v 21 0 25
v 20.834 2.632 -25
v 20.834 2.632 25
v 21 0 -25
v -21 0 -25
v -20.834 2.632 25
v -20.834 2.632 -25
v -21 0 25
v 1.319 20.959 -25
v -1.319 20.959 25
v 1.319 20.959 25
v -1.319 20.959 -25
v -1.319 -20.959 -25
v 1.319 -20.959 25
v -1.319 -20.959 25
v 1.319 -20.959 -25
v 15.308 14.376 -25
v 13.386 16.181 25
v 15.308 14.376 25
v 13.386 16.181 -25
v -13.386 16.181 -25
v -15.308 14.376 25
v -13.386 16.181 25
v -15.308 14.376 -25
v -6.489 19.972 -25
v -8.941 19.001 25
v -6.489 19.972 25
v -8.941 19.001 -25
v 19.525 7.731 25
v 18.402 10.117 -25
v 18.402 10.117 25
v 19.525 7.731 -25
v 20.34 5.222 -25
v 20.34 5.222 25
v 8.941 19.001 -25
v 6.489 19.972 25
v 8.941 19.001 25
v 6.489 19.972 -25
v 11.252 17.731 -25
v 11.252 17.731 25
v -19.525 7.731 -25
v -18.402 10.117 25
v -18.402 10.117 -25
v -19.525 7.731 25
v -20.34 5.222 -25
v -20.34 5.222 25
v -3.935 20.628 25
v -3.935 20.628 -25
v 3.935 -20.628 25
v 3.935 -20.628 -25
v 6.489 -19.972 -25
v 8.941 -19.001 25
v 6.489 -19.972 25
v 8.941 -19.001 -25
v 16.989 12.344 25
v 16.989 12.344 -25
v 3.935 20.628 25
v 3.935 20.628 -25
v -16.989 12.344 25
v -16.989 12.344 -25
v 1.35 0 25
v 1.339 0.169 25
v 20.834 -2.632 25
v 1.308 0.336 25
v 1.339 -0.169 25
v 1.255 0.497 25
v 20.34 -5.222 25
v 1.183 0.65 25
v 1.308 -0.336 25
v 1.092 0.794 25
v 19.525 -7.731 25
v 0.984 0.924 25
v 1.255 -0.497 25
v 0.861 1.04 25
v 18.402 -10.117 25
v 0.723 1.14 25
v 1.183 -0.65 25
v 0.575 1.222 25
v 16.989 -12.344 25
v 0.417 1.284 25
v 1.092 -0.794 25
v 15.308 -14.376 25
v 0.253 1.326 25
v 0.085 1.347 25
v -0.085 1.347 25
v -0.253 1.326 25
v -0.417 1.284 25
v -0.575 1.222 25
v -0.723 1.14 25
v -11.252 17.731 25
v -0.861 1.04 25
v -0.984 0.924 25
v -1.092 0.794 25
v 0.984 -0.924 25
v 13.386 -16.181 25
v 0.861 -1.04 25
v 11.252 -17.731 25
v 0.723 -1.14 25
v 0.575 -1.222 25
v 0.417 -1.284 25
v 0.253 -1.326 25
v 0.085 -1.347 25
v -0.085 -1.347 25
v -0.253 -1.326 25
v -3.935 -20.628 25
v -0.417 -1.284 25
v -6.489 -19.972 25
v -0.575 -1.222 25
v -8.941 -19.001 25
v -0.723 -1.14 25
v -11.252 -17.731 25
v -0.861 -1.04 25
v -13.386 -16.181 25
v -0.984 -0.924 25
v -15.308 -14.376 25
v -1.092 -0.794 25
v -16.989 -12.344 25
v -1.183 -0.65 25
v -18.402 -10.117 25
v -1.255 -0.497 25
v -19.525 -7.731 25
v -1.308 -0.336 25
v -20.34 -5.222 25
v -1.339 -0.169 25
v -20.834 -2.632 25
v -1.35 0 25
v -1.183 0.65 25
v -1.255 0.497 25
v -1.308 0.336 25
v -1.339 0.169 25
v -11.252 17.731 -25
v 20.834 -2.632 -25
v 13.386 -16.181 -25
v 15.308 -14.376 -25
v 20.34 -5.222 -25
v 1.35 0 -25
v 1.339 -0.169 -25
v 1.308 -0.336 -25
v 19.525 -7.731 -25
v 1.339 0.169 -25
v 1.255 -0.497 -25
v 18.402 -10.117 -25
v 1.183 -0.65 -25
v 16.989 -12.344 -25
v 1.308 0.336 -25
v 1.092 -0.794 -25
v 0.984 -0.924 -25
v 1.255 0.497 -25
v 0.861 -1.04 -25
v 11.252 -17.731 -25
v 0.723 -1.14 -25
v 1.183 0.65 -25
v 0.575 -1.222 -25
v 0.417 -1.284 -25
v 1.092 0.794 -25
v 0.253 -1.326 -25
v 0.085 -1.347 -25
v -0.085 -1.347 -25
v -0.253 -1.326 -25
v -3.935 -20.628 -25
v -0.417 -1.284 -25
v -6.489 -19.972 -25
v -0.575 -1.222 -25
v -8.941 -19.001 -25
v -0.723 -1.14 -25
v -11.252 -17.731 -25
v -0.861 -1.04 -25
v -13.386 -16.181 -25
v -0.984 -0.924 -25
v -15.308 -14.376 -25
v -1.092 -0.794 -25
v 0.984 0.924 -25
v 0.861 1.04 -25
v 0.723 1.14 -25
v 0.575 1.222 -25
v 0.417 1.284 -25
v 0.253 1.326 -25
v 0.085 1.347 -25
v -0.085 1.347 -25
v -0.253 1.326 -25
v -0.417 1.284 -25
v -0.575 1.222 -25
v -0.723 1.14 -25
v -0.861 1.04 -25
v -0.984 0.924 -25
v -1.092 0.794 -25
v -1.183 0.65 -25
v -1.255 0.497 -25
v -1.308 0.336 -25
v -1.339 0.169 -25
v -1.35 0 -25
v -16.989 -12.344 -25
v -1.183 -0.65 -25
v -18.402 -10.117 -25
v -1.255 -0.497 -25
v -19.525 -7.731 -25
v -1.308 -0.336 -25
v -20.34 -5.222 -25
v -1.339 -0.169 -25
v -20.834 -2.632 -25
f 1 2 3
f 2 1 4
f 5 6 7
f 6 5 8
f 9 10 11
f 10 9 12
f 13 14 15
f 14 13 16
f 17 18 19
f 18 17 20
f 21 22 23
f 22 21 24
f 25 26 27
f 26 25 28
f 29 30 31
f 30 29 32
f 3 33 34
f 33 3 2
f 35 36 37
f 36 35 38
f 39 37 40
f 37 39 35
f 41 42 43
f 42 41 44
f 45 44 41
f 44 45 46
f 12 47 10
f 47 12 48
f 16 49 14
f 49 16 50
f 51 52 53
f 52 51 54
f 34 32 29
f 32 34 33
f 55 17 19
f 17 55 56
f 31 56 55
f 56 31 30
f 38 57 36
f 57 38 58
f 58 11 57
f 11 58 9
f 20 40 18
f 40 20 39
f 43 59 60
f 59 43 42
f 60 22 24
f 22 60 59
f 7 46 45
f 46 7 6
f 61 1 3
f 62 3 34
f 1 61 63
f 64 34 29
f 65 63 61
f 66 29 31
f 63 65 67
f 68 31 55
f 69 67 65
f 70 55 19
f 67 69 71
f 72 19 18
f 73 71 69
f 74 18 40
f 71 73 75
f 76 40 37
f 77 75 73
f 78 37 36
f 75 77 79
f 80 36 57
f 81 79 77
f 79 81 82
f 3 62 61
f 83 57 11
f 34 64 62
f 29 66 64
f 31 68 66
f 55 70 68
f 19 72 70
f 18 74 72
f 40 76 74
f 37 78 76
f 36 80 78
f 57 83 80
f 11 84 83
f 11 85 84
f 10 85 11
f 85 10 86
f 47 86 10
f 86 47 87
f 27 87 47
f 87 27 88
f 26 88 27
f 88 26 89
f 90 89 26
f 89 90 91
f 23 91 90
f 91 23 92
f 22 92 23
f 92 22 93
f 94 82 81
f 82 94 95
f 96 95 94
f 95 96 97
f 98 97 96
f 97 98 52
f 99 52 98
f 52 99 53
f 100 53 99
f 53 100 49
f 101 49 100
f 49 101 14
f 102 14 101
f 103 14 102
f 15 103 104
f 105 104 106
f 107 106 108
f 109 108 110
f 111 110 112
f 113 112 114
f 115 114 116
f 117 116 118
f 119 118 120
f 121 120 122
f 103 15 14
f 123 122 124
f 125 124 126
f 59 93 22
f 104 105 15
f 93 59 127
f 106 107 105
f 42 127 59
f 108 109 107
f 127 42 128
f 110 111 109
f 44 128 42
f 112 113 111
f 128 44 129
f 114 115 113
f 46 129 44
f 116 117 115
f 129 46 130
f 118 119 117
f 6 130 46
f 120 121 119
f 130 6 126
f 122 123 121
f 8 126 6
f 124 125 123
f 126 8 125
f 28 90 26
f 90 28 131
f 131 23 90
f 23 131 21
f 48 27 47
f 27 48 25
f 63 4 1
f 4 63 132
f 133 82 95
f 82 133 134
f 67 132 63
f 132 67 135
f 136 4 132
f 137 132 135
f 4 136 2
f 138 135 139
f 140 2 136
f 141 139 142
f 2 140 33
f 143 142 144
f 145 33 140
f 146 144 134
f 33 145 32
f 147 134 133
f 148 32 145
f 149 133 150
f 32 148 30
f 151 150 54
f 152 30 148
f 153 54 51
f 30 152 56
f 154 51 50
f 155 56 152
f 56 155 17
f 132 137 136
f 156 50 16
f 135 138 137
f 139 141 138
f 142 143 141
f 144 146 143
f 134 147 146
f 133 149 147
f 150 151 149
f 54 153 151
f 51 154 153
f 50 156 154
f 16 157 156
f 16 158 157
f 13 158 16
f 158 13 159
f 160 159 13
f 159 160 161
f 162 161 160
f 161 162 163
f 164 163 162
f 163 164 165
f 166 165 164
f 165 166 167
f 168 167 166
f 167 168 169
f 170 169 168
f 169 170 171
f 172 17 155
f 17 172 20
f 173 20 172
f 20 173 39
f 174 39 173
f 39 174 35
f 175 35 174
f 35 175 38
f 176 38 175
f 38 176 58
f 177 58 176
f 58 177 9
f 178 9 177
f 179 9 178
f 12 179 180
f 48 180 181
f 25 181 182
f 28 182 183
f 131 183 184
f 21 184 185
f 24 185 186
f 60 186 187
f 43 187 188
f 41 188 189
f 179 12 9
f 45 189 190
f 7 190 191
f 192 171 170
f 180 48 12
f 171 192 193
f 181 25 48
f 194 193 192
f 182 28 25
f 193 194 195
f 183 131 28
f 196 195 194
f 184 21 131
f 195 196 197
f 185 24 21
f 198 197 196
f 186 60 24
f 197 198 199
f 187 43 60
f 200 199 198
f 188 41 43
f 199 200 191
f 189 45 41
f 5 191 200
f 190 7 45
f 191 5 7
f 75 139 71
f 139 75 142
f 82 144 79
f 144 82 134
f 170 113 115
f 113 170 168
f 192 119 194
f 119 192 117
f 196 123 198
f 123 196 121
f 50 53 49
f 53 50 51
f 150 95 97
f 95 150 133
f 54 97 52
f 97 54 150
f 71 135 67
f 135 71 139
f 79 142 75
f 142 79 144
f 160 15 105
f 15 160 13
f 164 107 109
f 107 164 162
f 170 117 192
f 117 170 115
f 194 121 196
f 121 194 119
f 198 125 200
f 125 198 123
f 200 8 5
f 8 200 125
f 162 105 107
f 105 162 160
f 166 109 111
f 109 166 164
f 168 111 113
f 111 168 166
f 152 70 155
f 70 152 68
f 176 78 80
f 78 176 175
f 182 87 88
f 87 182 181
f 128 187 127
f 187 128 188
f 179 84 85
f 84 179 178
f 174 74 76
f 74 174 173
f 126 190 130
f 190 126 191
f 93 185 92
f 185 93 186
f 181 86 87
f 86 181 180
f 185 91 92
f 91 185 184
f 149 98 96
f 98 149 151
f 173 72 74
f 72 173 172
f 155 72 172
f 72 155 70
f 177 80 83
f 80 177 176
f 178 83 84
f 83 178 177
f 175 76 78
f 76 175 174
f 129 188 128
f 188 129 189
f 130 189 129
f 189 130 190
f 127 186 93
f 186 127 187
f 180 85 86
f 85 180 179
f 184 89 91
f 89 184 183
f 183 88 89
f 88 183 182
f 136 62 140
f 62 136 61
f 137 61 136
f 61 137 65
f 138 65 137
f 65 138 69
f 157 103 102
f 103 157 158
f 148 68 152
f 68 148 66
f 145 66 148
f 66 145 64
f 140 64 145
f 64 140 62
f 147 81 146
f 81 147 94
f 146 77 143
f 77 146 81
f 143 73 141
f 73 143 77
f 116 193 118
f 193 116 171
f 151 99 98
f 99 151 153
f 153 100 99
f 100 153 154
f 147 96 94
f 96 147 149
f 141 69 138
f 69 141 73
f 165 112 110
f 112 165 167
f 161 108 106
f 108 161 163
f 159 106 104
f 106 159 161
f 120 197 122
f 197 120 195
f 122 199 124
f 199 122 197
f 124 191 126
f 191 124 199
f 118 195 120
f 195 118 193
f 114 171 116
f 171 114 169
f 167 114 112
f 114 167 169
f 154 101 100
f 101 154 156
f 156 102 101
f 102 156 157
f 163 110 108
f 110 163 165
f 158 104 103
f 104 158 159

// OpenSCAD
$fn = 50;


difference() {
	union() {
		translate(v = [0, 0, -25.0000000000]) {
			cylinder(h = 50, r = 21.0000000000);
		}
	}
	union() {
		translate(v = [0, 0, -100.0000000000]) {
			cylinder(h = 200, r = 1.3500000000);
		}
	}
}
